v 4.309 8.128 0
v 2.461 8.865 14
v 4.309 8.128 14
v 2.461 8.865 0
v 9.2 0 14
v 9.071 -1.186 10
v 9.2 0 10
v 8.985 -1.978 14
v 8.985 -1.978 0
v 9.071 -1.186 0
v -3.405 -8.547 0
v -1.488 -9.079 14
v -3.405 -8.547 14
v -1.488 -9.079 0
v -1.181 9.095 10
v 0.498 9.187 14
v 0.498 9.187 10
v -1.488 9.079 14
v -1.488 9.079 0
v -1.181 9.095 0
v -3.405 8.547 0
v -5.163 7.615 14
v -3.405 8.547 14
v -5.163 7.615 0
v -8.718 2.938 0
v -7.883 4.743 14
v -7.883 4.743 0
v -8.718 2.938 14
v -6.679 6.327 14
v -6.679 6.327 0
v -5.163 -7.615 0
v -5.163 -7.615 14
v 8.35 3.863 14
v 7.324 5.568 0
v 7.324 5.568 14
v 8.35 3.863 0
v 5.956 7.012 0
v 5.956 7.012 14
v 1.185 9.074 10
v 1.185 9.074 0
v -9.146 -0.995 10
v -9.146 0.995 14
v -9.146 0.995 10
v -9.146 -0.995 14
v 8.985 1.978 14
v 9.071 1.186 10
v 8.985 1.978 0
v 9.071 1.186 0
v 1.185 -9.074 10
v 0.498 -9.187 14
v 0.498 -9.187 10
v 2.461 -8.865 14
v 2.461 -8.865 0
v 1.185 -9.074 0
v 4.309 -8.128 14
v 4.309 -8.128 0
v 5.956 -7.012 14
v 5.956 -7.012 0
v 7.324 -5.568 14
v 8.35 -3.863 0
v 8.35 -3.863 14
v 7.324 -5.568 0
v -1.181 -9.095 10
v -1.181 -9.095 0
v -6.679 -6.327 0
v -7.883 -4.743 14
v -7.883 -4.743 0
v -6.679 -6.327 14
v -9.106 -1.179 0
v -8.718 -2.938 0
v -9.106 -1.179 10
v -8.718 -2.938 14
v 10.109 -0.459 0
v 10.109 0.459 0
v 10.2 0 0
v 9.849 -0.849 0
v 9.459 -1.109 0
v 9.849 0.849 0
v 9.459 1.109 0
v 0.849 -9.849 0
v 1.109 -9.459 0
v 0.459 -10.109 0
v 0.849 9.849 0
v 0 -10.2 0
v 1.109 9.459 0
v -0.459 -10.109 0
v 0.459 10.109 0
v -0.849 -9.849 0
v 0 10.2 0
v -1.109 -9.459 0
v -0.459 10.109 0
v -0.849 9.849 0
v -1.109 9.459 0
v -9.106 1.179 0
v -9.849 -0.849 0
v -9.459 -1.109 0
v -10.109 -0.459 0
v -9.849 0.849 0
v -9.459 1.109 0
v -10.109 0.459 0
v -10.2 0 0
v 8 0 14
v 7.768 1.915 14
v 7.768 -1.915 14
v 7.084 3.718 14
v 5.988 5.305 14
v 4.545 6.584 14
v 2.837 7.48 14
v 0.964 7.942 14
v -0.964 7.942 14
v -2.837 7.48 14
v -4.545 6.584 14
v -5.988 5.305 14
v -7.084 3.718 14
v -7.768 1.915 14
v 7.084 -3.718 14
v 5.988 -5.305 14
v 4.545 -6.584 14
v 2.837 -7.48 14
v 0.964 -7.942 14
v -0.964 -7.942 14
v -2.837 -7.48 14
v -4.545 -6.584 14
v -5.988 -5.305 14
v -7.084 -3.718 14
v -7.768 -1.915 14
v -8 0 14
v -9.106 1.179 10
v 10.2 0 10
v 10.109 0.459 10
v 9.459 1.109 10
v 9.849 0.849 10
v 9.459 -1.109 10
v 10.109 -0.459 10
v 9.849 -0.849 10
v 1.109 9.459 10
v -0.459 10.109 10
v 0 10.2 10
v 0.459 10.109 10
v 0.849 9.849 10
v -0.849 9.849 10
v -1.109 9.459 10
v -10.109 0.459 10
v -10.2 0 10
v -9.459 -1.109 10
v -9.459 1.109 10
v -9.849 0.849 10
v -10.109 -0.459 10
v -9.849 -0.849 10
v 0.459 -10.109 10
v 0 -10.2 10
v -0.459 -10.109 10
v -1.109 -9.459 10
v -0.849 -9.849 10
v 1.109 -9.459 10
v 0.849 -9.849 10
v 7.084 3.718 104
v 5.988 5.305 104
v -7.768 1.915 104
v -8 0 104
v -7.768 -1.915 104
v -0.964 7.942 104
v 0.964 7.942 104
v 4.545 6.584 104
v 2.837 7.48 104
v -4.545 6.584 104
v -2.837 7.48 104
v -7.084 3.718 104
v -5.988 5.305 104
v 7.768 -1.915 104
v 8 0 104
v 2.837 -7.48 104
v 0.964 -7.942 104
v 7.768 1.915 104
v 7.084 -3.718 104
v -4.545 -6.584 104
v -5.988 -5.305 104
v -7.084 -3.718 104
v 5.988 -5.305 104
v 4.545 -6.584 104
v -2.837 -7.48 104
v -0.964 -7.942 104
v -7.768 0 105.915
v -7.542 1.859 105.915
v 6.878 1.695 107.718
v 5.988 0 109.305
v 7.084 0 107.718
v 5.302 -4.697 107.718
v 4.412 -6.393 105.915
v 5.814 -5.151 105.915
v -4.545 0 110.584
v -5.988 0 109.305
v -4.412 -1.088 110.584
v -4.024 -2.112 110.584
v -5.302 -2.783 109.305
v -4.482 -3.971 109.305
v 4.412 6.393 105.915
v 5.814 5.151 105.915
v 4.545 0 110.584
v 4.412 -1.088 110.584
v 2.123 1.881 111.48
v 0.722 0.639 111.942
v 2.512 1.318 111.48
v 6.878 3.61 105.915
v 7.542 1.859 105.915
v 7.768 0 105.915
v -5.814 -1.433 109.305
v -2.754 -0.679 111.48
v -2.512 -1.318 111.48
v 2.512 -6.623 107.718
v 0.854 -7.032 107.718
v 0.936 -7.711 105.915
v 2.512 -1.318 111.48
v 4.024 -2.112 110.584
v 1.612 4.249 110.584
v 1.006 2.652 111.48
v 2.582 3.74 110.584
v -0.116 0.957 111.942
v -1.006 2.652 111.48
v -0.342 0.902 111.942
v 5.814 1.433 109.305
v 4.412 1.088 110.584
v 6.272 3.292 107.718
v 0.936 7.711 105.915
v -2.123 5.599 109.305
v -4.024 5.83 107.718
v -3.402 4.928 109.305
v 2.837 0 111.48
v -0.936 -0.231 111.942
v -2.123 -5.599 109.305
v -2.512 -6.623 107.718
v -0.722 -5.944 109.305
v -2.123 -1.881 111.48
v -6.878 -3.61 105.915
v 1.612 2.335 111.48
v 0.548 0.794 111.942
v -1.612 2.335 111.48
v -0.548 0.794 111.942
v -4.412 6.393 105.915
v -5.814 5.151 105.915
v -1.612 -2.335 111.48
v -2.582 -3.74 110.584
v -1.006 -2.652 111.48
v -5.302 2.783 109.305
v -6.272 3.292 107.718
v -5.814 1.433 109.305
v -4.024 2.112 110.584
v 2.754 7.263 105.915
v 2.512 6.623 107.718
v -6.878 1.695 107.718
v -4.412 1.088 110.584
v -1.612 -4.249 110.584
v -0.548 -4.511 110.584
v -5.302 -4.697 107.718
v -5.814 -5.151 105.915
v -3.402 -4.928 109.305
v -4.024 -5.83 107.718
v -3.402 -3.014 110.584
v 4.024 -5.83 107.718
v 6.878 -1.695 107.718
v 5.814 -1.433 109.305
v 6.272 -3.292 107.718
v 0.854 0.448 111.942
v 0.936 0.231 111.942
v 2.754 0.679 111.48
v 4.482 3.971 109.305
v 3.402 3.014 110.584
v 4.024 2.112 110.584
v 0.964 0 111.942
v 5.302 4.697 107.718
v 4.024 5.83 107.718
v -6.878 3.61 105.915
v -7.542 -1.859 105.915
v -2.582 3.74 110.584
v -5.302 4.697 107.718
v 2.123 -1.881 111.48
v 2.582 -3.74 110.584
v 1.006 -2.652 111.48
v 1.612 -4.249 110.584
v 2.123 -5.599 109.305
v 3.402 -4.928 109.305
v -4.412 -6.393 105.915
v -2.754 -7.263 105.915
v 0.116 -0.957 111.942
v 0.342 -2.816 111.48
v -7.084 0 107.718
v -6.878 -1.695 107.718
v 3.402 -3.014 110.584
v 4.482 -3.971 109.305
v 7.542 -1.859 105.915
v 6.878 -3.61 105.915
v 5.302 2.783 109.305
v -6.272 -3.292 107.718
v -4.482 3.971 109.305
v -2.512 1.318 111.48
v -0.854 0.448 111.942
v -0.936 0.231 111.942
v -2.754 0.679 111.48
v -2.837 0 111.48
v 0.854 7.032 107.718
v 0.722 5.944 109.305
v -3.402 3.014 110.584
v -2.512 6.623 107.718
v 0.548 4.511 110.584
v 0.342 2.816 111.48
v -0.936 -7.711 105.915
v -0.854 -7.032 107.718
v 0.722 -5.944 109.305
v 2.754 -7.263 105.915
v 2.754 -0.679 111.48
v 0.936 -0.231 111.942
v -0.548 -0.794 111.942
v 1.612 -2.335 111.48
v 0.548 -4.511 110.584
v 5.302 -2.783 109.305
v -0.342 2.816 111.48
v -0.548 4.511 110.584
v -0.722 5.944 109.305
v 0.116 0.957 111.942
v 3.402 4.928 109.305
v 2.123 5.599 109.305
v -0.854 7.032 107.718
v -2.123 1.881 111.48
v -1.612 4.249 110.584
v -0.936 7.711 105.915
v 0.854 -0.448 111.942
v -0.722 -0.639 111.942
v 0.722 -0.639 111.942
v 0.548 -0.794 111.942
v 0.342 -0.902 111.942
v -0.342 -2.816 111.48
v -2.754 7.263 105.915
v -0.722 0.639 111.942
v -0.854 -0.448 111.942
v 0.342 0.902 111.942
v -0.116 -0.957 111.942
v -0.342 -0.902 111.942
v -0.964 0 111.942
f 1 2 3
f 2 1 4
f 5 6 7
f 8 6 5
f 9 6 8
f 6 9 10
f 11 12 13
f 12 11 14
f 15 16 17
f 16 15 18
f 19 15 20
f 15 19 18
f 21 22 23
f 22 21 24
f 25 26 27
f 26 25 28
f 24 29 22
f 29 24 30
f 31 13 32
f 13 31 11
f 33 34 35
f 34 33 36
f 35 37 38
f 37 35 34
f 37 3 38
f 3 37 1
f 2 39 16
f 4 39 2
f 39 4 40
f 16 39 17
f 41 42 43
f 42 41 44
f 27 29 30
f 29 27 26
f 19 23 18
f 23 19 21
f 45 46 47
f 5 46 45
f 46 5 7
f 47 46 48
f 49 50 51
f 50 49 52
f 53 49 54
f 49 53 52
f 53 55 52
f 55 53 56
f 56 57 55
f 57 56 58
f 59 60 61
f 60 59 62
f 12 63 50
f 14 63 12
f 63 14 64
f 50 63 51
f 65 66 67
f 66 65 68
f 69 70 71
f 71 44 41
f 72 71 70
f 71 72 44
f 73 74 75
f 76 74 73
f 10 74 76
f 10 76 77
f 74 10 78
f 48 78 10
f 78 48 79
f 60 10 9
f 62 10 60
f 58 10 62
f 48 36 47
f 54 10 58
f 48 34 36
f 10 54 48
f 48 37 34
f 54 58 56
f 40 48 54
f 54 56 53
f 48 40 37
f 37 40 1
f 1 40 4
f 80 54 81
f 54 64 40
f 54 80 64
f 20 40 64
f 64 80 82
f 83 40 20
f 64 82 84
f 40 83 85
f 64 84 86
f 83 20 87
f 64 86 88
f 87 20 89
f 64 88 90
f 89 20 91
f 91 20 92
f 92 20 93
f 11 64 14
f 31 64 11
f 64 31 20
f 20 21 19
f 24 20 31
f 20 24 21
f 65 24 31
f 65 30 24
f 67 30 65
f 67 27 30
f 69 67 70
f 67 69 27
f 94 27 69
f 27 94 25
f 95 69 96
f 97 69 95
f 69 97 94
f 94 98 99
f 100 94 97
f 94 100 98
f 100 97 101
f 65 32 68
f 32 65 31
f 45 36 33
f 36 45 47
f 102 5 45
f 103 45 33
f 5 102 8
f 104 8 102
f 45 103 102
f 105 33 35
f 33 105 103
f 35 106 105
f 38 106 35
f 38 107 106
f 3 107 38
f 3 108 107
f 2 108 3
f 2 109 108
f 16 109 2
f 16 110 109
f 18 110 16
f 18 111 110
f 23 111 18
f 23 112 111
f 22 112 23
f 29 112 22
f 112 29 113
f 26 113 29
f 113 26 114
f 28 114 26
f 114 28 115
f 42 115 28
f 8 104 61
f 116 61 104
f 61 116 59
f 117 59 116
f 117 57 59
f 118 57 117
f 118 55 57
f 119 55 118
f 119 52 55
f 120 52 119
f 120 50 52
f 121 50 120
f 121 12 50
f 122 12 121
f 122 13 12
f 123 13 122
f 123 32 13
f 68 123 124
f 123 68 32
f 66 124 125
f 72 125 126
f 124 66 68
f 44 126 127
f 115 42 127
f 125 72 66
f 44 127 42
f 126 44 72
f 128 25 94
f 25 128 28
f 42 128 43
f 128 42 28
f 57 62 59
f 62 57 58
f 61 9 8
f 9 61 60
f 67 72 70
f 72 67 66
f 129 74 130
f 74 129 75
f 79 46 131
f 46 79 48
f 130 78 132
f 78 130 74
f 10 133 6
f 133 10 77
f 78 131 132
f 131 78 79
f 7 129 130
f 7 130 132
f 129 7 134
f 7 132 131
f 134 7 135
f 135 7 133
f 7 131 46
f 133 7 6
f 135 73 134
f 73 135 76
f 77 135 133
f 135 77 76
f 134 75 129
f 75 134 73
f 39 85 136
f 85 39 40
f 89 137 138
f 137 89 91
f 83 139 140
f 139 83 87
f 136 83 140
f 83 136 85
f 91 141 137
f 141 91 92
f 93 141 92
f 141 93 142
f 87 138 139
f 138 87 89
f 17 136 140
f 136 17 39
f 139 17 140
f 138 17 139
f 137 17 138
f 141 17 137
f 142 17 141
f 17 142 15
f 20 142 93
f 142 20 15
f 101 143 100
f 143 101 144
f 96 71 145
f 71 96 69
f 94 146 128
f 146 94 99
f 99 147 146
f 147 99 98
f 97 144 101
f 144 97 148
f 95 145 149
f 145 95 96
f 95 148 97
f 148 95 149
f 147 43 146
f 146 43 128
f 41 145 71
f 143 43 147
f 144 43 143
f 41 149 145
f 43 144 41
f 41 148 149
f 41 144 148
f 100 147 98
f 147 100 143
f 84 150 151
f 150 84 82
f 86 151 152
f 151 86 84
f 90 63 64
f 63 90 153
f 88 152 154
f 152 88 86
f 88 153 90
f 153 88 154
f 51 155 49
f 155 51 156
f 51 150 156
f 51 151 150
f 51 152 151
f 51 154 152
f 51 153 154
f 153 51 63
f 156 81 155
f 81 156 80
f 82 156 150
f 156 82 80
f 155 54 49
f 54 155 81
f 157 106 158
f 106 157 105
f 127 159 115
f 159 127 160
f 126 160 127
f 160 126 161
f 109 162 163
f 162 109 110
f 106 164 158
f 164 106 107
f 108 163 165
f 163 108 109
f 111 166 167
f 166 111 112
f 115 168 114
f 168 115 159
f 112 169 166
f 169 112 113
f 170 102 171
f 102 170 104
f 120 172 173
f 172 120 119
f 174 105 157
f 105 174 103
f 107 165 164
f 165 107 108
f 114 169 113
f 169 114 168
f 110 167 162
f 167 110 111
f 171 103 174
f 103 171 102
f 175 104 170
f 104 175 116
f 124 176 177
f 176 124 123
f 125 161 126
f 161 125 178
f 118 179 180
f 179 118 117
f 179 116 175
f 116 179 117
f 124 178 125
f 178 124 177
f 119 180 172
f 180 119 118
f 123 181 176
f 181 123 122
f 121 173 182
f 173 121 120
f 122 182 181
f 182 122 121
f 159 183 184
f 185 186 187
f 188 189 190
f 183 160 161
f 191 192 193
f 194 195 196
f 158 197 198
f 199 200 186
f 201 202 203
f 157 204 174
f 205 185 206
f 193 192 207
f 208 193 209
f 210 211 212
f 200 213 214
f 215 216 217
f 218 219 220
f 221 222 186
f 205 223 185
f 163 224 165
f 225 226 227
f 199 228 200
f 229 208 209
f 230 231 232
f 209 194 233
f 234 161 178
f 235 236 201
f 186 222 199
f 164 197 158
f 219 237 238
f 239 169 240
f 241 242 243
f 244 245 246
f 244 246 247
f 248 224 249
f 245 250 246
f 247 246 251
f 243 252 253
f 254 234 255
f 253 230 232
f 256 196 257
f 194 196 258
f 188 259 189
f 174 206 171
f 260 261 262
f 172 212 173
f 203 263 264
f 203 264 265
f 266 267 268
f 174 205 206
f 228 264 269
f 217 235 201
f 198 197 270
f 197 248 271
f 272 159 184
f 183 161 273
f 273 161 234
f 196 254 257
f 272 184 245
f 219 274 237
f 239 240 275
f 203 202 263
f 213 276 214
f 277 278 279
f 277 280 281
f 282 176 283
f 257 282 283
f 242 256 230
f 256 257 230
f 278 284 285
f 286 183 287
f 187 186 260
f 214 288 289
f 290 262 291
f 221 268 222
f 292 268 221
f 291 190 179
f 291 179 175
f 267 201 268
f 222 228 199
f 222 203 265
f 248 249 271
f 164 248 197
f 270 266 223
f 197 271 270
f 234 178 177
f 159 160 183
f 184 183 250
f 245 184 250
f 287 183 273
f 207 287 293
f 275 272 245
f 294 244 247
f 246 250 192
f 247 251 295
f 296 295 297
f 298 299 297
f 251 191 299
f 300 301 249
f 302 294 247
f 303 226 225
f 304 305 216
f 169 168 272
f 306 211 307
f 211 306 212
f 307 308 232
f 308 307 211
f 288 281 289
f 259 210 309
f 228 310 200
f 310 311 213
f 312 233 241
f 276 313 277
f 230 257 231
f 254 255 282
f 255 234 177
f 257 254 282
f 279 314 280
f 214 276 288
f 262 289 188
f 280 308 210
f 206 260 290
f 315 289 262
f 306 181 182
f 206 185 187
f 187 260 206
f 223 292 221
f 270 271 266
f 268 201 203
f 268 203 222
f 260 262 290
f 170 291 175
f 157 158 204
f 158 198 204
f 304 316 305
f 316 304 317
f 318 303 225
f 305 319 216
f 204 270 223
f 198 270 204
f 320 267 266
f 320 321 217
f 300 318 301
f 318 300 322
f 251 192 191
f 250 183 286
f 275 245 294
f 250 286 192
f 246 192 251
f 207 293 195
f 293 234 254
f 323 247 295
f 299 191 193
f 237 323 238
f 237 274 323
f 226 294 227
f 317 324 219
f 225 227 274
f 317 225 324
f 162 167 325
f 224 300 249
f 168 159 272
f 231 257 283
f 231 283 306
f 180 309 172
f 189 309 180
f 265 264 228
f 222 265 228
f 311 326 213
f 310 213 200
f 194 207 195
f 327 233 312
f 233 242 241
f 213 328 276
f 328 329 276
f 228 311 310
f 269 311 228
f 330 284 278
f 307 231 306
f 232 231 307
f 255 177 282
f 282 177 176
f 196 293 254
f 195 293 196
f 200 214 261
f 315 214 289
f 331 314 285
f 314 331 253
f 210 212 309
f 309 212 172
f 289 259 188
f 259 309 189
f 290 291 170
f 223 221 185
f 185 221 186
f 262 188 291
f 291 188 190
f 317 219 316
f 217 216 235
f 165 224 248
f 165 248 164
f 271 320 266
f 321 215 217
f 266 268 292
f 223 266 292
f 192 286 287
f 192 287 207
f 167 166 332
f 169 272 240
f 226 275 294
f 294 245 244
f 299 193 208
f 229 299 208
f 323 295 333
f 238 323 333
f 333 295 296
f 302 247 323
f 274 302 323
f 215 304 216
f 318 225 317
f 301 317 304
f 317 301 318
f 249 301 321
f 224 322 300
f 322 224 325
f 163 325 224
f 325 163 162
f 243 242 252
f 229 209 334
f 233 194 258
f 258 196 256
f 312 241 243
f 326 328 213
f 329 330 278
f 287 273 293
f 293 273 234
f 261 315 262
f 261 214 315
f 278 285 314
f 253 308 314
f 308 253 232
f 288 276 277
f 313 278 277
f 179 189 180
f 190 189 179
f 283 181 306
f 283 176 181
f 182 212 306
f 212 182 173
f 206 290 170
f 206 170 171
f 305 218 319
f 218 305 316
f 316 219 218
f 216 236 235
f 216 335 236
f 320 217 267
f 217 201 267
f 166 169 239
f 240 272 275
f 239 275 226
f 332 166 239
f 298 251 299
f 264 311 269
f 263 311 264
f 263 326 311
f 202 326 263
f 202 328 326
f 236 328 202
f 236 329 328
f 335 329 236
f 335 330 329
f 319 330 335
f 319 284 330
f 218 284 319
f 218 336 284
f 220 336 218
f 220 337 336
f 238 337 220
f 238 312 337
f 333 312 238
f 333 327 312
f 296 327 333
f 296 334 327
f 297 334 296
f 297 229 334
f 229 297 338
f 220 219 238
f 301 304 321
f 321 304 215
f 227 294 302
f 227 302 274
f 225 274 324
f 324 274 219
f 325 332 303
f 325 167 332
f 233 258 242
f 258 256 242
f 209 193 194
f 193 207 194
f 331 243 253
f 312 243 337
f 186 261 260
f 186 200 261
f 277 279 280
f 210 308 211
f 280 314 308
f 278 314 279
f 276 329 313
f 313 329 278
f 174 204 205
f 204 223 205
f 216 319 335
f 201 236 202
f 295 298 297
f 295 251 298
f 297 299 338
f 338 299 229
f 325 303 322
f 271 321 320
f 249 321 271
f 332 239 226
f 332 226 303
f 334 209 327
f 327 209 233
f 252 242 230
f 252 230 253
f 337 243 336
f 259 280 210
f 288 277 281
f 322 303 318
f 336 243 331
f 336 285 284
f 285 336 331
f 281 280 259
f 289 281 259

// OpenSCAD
stickSize = 90;
union() {
    cylinder(stickSize+14, 8, 8);
    translate([0, 0, stickSize+14]) 
        sphere(d = 16);
    color("Blue", 1.0) {
        cylinder(14, 9.2, 9.2);
        translate([9, 0, 0])
            cylinder(10, 1.2, 1.2, $fn=16);
        translate([0, 9, 0])
            cylinder(10, 1.2, 1.2, $fn=16);
        translate([-9, 0, 0])
            cylinder(10, 1.2, 1.2, $fn=16);
        translate([0, -9, 0])
            cylinder(10, 1.2, 1.2, $fn=16);
    }
}
